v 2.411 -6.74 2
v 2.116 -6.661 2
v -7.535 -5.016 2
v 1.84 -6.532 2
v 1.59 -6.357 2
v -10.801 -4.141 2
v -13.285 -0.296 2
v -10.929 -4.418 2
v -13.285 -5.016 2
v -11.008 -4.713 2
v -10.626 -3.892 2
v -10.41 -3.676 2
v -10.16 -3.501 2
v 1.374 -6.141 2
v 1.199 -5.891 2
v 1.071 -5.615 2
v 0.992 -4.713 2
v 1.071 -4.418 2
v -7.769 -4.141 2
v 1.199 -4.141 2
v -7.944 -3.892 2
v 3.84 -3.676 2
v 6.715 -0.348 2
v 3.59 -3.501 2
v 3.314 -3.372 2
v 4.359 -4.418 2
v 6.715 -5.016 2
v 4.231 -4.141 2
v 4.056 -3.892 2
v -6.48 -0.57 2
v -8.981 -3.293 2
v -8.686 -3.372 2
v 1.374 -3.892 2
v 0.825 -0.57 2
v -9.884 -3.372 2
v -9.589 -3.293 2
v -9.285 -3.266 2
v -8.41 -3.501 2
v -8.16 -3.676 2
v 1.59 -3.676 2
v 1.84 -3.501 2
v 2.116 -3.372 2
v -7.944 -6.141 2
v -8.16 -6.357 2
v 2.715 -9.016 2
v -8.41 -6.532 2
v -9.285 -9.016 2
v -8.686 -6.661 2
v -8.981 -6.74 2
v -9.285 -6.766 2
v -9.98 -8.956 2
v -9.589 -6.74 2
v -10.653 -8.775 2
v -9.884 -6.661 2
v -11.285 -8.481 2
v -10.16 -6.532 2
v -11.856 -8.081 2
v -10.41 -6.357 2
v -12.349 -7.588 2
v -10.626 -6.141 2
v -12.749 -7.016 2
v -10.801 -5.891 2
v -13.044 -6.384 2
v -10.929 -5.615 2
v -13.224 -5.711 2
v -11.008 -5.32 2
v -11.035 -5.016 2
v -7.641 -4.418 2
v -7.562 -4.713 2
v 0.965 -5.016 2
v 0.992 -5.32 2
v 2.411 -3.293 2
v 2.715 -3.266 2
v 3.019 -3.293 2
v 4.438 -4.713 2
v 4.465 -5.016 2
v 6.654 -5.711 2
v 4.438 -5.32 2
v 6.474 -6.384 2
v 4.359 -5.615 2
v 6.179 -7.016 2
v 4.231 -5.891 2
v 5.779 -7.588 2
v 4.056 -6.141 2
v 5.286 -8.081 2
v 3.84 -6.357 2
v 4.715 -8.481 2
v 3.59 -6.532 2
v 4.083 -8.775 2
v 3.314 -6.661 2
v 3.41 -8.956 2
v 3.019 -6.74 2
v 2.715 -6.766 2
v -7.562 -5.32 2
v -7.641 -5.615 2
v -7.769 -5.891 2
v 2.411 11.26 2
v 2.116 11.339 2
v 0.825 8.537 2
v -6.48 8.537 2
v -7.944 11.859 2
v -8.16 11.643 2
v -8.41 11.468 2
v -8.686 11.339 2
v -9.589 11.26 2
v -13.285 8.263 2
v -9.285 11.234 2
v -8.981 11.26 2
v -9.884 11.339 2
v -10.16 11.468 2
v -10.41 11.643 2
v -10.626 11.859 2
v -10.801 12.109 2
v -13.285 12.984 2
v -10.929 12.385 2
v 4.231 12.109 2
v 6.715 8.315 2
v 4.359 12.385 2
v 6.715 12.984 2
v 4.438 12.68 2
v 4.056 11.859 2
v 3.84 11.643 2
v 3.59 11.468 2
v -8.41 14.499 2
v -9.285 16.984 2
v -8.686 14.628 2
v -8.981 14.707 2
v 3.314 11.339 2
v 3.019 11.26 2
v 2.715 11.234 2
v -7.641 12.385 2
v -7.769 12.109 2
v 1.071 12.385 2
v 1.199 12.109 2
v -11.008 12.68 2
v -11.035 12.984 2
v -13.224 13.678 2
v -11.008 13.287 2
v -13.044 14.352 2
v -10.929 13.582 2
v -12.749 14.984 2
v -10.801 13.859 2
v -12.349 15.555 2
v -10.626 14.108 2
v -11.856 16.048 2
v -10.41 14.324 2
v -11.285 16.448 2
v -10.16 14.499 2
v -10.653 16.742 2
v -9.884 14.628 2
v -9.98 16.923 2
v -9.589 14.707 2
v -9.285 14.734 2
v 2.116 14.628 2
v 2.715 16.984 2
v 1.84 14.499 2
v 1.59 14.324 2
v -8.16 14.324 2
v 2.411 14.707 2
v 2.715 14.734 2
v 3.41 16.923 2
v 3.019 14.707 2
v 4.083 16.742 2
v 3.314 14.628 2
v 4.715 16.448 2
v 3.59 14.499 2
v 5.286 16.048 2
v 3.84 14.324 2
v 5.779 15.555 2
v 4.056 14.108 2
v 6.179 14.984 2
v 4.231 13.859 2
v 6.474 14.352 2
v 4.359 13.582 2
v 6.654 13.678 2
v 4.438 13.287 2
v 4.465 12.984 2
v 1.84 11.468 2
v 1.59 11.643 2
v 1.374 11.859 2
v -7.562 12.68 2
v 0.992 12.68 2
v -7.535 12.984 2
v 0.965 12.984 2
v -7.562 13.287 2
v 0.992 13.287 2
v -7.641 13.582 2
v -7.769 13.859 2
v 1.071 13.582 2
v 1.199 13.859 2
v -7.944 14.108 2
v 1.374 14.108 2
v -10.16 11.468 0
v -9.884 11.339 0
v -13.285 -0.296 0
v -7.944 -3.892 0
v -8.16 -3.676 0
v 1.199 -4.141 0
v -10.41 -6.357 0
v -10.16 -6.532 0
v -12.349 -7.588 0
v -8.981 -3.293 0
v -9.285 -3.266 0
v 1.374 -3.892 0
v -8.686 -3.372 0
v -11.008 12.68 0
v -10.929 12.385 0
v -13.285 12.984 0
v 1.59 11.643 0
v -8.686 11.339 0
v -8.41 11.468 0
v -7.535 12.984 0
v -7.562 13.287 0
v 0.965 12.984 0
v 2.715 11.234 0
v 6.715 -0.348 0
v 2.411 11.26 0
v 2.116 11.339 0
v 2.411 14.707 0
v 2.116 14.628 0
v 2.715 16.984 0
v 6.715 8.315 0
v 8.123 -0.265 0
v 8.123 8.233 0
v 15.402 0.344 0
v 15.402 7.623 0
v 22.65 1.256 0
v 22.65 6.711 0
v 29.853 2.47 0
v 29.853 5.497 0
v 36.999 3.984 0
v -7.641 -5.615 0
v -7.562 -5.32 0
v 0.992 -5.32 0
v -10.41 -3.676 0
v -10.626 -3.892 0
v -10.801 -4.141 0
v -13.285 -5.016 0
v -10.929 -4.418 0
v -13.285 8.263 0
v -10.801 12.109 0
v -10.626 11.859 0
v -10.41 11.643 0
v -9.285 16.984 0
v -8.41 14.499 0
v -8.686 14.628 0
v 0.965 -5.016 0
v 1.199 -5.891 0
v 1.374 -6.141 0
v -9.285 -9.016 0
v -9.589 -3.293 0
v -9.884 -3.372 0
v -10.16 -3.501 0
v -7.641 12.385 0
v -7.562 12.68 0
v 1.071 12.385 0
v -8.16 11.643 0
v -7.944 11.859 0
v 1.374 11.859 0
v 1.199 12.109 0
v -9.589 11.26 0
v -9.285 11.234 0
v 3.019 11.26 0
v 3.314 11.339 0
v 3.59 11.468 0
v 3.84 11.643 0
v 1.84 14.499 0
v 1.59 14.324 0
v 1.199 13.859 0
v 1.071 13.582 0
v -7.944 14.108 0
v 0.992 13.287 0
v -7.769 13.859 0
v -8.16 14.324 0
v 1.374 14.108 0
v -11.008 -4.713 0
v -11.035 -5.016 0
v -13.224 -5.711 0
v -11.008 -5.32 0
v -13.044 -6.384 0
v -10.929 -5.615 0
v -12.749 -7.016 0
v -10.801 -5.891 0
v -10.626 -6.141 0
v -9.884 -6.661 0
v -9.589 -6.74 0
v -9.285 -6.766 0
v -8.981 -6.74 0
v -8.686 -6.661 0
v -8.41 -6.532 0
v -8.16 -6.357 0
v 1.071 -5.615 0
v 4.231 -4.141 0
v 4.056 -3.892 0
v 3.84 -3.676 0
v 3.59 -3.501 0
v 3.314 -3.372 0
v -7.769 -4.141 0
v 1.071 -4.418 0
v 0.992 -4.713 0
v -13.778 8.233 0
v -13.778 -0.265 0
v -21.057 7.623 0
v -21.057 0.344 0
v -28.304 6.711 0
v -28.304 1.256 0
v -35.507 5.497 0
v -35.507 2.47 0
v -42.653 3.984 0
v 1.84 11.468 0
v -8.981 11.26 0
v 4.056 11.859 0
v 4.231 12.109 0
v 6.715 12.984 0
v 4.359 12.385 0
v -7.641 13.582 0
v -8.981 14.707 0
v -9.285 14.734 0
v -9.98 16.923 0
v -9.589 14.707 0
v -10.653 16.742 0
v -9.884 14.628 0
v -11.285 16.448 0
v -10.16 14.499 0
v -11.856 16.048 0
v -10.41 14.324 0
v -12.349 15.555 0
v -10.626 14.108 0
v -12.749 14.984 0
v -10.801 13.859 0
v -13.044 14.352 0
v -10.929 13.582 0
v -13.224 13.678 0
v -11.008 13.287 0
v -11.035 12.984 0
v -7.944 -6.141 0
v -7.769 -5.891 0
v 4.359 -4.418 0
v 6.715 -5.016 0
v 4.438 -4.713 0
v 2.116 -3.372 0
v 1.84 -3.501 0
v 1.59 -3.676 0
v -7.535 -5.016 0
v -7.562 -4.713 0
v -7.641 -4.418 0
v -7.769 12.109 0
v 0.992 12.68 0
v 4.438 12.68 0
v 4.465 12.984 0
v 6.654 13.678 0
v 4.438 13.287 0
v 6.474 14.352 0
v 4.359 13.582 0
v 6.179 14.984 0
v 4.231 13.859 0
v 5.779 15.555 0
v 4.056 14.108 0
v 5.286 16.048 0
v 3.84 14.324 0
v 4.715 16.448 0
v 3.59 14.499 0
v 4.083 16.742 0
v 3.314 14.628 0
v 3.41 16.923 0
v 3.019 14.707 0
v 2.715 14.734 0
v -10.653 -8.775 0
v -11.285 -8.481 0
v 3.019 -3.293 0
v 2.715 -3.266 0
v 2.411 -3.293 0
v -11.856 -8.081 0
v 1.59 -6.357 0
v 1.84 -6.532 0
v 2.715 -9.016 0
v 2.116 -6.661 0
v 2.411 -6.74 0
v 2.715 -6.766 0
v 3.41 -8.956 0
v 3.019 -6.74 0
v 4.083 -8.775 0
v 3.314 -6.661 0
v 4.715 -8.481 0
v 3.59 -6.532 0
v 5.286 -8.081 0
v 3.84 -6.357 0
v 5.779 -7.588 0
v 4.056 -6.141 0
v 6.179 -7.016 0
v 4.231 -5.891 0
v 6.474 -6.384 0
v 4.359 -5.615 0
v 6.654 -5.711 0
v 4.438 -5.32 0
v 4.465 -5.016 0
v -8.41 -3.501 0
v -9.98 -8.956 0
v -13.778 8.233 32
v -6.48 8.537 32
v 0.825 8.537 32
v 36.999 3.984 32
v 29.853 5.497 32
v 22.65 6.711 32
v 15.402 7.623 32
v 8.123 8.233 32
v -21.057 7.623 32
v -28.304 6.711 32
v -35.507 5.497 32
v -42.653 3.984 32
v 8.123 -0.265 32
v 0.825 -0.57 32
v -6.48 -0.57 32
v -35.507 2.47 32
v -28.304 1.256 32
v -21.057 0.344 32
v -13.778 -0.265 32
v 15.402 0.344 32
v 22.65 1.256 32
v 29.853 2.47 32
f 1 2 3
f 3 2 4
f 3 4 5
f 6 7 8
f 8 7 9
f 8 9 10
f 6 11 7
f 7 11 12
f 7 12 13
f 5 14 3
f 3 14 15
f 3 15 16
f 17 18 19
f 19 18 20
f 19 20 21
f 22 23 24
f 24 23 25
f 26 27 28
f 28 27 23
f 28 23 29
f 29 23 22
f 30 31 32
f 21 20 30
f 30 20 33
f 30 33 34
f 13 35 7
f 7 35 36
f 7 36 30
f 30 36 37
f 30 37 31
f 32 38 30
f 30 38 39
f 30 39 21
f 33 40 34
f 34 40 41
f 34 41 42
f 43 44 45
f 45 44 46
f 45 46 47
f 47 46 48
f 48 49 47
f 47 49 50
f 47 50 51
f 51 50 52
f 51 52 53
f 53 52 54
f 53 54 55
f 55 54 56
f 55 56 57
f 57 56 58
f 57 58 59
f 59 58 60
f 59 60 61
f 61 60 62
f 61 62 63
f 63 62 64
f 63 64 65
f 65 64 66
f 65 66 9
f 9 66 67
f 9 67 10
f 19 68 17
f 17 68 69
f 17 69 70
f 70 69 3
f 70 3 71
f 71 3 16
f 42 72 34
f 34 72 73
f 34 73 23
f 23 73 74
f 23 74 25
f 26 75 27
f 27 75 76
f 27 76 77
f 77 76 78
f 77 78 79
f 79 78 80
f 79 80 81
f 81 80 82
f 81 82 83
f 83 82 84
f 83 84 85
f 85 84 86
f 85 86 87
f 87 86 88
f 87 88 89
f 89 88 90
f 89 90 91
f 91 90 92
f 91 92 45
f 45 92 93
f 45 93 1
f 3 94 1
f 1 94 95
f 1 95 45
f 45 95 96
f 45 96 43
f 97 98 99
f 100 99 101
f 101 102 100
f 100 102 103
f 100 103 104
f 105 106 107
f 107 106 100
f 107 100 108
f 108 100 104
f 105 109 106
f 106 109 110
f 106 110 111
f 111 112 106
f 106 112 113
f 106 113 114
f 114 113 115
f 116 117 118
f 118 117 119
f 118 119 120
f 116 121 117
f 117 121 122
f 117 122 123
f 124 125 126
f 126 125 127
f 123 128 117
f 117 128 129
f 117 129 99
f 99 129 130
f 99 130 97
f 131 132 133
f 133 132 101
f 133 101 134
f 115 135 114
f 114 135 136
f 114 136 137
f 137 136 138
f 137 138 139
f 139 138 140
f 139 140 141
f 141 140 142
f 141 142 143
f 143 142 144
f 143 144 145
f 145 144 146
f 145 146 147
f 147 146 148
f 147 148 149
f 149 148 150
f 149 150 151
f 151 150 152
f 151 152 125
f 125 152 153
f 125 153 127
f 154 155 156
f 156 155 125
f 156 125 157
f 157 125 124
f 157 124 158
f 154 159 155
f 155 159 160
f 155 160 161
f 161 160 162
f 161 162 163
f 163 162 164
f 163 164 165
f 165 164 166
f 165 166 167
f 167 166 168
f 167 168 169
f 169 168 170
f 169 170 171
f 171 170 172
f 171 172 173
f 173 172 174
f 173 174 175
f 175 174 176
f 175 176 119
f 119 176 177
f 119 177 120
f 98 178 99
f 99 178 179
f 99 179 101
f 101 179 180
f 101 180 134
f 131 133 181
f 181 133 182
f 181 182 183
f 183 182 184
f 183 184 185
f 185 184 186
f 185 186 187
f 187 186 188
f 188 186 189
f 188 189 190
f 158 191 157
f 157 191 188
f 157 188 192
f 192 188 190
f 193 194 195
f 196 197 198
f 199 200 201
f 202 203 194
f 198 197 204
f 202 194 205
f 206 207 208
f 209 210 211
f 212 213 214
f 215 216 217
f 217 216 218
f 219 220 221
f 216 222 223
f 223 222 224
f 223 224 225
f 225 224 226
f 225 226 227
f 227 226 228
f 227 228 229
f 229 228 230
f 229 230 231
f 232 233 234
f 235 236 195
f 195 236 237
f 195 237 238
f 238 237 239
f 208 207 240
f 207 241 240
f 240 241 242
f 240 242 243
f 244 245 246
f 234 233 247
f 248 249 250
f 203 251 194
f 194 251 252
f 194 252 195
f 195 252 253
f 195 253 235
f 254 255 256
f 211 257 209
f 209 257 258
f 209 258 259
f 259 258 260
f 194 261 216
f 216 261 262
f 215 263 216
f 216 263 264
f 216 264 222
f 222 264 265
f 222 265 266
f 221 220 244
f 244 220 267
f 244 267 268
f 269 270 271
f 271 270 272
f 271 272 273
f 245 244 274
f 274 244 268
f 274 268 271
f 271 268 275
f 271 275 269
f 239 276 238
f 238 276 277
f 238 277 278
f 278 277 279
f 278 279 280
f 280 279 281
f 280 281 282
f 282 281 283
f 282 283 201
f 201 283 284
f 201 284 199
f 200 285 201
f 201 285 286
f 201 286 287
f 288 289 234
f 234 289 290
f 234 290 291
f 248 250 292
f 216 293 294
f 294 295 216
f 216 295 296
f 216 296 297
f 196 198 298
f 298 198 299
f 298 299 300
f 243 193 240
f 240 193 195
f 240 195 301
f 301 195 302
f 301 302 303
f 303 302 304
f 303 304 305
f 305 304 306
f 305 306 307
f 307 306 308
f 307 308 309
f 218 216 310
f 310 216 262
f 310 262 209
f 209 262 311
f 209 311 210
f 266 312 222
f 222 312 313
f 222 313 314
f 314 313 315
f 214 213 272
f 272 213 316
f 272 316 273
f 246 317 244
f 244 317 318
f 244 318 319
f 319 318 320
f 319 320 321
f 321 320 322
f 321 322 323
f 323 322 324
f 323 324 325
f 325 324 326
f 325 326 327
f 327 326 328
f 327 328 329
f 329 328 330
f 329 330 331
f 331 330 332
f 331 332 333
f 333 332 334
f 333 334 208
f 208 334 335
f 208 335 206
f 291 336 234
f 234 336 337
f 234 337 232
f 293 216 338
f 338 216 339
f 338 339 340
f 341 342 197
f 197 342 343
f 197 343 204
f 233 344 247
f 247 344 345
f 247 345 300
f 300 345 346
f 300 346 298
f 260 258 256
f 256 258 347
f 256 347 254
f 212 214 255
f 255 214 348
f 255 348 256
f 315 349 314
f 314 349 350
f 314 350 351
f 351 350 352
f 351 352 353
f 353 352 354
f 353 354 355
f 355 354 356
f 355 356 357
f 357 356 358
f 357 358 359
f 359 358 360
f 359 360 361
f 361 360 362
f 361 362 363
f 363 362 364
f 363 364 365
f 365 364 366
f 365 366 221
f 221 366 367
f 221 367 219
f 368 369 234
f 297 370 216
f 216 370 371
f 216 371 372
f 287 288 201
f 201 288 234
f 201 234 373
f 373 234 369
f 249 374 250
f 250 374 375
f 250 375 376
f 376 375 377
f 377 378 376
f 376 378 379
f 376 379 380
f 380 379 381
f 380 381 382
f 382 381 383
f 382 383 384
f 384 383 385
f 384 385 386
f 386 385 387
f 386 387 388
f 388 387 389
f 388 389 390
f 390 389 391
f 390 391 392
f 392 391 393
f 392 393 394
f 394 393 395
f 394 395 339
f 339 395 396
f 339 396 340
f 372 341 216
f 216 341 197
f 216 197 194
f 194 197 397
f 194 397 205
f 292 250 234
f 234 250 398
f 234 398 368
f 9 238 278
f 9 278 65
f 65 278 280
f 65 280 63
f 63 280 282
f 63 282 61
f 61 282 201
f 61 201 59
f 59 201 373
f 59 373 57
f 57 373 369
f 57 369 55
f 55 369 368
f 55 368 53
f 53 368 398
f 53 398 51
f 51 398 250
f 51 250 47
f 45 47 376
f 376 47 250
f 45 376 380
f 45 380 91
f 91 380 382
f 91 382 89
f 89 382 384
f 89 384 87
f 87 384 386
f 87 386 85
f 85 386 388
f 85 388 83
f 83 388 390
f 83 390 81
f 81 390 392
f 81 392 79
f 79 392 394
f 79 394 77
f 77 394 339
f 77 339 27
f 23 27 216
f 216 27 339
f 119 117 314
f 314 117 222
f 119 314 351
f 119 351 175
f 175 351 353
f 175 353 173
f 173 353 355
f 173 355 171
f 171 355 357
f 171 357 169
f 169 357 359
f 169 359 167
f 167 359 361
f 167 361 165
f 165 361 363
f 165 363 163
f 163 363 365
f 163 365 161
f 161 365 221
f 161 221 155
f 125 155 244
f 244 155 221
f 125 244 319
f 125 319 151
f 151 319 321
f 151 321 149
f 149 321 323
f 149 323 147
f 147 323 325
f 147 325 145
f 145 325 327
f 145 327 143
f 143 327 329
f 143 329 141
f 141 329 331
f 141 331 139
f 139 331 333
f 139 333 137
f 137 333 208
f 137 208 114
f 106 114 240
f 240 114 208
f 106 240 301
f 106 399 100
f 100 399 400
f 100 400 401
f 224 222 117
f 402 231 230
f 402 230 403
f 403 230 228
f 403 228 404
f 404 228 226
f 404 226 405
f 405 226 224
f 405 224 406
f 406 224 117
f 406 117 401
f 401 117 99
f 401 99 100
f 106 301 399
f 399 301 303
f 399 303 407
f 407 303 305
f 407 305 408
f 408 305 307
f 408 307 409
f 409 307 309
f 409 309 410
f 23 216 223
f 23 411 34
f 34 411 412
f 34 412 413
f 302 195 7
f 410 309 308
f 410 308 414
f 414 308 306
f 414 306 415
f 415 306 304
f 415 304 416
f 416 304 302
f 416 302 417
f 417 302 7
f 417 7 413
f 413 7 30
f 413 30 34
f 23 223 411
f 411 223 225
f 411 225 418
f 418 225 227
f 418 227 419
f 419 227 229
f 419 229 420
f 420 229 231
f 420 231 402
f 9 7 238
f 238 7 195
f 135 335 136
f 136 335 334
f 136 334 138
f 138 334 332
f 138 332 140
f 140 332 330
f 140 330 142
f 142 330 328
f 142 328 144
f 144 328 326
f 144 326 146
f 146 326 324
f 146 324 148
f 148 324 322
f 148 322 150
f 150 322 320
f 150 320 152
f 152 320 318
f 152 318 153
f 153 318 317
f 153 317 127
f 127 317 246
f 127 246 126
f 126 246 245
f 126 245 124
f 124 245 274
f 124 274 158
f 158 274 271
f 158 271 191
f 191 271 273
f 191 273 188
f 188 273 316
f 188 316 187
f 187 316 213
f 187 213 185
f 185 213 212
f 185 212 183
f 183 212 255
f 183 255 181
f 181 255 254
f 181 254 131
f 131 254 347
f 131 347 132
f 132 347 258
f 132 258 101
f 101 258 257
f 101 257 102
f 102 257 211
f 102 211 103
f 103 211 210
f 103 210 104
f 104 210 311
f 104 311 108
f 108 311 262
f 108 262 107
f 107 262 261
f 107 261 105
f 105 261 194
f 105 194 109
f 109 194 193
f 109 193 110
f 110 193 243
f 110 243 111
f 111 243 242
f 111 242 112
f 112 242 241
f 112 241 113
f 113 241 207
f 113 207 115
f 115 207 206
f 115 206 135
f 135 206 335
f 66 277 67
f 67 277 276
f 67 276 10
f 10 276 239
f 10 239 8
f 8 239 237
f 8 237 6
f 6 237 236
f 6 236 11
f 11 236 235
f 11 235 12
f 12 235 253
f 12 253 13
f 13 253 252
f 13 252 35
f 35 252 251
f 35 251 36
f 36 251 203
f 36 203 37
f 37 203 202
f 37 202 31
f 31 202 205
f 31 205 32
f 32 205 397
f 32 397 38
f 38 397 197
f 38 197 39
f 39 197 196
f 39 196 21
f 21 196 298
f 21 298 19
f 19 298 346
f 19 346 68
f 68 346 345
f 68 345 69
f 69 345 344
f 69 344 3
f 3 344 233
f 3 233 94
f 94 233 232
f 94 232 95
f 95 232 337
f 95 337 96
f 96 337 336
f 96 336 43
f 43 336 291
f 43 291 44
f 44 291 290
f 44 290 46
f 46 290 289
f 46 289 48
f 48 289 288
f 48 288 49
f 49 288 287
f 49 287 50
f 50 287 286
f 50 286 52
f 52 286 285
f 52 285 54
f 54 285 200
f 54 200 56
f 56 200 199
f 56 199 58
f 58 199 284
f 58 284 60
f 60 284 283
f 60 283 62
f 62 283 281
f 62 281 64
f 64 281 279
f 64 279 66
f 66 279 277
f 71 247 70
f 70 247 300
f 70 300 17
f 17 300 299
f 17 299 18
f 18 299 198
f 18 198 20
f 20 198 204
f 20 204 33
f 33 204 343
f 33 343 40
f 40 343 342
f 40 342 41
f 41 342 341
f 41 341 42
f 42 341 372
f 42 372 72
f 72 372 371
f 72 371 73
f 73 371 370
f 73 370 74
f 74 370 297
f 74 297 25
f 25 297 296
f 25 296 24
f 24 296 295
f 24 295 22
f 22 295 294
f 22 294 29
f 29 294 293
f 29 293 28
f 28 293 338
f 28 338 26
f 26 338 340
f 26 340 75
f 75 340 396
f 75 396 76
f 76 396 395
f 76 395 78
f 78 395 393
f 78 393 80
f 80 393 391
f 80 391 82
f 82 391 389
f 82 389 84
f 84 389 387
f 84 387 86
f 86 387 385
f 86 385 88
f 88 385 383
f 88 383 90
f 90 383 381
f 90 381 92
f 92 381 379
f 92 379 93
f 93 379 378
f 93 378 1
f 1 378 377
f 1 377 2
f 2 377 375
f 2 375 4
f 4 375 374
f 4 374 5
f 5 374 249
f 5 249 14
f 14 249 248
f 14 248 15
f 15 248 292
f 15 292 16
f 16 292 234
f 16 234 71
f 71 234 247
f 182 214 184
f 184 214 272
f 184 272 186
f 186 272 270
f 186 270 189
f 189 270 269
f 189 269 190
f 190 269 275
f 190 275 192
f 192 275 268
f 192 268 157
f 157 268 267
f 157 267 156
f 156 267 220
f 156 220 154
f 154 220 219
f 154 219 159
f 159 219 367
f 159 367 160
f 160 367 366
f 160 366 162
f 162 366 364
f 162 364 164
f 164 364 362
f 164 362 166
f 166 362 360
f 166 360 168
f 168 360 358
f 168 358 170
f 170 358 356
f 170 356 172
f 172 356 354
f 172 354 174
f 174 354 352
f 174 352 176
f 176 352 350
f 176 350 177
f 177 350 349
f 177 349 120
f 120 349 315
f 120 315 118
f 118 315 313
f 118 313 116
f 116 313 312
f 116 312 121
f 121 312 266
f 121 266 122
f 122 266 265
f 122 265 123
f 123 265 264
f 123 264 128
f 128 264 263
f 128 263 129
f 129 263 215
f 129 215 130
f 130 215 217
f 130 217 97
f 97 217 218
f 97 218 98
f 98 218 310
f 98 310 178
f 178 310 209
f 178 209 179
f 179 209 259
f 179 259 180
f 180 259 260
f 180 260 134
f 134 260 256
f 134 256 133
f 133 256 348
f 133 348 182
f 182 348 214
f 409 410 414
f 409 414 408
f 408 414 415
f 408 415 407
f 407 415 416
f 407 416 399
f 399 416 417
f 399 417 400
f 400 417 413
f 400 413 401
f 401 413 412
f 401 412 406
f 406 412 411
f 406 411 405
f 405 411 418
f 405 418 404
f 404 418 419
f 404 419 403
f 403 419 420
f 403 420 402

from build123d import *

# Parameters (mm, degrees)
ESQUISSE1_R        = 1.75
BOSS_EXTRU_1_DEPTH = 2
BOSS_EXTRU_2_DEPTH = 30


with BuildPart() as part:
    # Esquisse1 → Boss.-Extru.1 (new body)
    with BuildSketch(Plane.XY):
        with BuildLine():
            Line((-13.285014649, -0.29563378), (-13.285014649, -5.016414934))
            ThreePointArc((-13.285014649, -5.016414934), (-12.113441773, -7.844842058), (-9.285014649, -9.016414934))
            Line((-9.285014649, -9.016414934), (2.714985351, -9.016414934))
            ThreePointArc((2.714985351, -9.016414934), (5.543412476, -7.844842058), (6.714985351, -5.016414934))
            Line((6.714985351, -5.016414934), (6.714985351, -0.348036487))
            ThreePointArc((6.714985351, -0.348036487), (21.951660894, 1.154765906), (36.998669859, 3.983585066))
            ThreePointArc((36.998669859, 3.983585066), (21.951660894, 6.812404226), (6.714985351, 8.315206619))
            Line((6.714985351, 8.315206619), (6.714985351, 12.983585066))
            ThreePointArc((6.714985351, 12.983585066), (5.543412476, 15.812012191), (2.714985351, 16.983585066))
            Line((2.714985351, 16.983585066), (-9.285014649, 16.983585066))
            ThreePointArc((-9.285014649, 16.983585066), (-12.113441773, 15.812012191), (-13.285014649, 12.983585066))
            Line((-13.285014649, 12.983585066), (-13.285014649, 8.262803913))
            ThreePointArc((-13.285014649, 8.262803913), (-28.0599618, 6.746885729), (-42.653153387, 3.983585066))
            ThreePointArc((-42.653153387, 3.983585066), (-28.0599618, 1.220284404), (-13.285014649, -0.29563378))
        make_face()
        with Locations((-9.285014649, 12.983585066)):
            Circle(ESQUISSE1_R, mode=Mode.SUBTRACT)
        with Locations((-9.285014649, -5.016414934)):
            Circle(ESQUISSE1_R, mode=Mode.SUBTRACT)
        with Locations((2.714985351, -5.016414934)):
            Circle(ESQUISSE1_R, mode=Mode.SUBTRACT)
        with Locations((2.714985351, 12.983585066)):
            Circle(ESQUISSE1_R, mode=Mode.SUBTRACT)
    extrude(amount=BOSS_EXTRU_1_DEPTH)

    # Esquisse2 → Boss.-Extru.2 (add)
    with BuildSketch(Plane.XY.offset(2)):
        with BuildLine():
            ThreePointArc((36.998669859, 3.983585066), (-2.827241764, 8.575554846), (-42.653153387, 3.983585066))
            ThreePointArc((-42.653153387, 3.983585066), (-2.827241764, -0.608384714), (36.998669859, 3.983585066))
        make_face()
    extrude(amount=BOSS_EXTRU_2_DEPTH)


solid = part.part
